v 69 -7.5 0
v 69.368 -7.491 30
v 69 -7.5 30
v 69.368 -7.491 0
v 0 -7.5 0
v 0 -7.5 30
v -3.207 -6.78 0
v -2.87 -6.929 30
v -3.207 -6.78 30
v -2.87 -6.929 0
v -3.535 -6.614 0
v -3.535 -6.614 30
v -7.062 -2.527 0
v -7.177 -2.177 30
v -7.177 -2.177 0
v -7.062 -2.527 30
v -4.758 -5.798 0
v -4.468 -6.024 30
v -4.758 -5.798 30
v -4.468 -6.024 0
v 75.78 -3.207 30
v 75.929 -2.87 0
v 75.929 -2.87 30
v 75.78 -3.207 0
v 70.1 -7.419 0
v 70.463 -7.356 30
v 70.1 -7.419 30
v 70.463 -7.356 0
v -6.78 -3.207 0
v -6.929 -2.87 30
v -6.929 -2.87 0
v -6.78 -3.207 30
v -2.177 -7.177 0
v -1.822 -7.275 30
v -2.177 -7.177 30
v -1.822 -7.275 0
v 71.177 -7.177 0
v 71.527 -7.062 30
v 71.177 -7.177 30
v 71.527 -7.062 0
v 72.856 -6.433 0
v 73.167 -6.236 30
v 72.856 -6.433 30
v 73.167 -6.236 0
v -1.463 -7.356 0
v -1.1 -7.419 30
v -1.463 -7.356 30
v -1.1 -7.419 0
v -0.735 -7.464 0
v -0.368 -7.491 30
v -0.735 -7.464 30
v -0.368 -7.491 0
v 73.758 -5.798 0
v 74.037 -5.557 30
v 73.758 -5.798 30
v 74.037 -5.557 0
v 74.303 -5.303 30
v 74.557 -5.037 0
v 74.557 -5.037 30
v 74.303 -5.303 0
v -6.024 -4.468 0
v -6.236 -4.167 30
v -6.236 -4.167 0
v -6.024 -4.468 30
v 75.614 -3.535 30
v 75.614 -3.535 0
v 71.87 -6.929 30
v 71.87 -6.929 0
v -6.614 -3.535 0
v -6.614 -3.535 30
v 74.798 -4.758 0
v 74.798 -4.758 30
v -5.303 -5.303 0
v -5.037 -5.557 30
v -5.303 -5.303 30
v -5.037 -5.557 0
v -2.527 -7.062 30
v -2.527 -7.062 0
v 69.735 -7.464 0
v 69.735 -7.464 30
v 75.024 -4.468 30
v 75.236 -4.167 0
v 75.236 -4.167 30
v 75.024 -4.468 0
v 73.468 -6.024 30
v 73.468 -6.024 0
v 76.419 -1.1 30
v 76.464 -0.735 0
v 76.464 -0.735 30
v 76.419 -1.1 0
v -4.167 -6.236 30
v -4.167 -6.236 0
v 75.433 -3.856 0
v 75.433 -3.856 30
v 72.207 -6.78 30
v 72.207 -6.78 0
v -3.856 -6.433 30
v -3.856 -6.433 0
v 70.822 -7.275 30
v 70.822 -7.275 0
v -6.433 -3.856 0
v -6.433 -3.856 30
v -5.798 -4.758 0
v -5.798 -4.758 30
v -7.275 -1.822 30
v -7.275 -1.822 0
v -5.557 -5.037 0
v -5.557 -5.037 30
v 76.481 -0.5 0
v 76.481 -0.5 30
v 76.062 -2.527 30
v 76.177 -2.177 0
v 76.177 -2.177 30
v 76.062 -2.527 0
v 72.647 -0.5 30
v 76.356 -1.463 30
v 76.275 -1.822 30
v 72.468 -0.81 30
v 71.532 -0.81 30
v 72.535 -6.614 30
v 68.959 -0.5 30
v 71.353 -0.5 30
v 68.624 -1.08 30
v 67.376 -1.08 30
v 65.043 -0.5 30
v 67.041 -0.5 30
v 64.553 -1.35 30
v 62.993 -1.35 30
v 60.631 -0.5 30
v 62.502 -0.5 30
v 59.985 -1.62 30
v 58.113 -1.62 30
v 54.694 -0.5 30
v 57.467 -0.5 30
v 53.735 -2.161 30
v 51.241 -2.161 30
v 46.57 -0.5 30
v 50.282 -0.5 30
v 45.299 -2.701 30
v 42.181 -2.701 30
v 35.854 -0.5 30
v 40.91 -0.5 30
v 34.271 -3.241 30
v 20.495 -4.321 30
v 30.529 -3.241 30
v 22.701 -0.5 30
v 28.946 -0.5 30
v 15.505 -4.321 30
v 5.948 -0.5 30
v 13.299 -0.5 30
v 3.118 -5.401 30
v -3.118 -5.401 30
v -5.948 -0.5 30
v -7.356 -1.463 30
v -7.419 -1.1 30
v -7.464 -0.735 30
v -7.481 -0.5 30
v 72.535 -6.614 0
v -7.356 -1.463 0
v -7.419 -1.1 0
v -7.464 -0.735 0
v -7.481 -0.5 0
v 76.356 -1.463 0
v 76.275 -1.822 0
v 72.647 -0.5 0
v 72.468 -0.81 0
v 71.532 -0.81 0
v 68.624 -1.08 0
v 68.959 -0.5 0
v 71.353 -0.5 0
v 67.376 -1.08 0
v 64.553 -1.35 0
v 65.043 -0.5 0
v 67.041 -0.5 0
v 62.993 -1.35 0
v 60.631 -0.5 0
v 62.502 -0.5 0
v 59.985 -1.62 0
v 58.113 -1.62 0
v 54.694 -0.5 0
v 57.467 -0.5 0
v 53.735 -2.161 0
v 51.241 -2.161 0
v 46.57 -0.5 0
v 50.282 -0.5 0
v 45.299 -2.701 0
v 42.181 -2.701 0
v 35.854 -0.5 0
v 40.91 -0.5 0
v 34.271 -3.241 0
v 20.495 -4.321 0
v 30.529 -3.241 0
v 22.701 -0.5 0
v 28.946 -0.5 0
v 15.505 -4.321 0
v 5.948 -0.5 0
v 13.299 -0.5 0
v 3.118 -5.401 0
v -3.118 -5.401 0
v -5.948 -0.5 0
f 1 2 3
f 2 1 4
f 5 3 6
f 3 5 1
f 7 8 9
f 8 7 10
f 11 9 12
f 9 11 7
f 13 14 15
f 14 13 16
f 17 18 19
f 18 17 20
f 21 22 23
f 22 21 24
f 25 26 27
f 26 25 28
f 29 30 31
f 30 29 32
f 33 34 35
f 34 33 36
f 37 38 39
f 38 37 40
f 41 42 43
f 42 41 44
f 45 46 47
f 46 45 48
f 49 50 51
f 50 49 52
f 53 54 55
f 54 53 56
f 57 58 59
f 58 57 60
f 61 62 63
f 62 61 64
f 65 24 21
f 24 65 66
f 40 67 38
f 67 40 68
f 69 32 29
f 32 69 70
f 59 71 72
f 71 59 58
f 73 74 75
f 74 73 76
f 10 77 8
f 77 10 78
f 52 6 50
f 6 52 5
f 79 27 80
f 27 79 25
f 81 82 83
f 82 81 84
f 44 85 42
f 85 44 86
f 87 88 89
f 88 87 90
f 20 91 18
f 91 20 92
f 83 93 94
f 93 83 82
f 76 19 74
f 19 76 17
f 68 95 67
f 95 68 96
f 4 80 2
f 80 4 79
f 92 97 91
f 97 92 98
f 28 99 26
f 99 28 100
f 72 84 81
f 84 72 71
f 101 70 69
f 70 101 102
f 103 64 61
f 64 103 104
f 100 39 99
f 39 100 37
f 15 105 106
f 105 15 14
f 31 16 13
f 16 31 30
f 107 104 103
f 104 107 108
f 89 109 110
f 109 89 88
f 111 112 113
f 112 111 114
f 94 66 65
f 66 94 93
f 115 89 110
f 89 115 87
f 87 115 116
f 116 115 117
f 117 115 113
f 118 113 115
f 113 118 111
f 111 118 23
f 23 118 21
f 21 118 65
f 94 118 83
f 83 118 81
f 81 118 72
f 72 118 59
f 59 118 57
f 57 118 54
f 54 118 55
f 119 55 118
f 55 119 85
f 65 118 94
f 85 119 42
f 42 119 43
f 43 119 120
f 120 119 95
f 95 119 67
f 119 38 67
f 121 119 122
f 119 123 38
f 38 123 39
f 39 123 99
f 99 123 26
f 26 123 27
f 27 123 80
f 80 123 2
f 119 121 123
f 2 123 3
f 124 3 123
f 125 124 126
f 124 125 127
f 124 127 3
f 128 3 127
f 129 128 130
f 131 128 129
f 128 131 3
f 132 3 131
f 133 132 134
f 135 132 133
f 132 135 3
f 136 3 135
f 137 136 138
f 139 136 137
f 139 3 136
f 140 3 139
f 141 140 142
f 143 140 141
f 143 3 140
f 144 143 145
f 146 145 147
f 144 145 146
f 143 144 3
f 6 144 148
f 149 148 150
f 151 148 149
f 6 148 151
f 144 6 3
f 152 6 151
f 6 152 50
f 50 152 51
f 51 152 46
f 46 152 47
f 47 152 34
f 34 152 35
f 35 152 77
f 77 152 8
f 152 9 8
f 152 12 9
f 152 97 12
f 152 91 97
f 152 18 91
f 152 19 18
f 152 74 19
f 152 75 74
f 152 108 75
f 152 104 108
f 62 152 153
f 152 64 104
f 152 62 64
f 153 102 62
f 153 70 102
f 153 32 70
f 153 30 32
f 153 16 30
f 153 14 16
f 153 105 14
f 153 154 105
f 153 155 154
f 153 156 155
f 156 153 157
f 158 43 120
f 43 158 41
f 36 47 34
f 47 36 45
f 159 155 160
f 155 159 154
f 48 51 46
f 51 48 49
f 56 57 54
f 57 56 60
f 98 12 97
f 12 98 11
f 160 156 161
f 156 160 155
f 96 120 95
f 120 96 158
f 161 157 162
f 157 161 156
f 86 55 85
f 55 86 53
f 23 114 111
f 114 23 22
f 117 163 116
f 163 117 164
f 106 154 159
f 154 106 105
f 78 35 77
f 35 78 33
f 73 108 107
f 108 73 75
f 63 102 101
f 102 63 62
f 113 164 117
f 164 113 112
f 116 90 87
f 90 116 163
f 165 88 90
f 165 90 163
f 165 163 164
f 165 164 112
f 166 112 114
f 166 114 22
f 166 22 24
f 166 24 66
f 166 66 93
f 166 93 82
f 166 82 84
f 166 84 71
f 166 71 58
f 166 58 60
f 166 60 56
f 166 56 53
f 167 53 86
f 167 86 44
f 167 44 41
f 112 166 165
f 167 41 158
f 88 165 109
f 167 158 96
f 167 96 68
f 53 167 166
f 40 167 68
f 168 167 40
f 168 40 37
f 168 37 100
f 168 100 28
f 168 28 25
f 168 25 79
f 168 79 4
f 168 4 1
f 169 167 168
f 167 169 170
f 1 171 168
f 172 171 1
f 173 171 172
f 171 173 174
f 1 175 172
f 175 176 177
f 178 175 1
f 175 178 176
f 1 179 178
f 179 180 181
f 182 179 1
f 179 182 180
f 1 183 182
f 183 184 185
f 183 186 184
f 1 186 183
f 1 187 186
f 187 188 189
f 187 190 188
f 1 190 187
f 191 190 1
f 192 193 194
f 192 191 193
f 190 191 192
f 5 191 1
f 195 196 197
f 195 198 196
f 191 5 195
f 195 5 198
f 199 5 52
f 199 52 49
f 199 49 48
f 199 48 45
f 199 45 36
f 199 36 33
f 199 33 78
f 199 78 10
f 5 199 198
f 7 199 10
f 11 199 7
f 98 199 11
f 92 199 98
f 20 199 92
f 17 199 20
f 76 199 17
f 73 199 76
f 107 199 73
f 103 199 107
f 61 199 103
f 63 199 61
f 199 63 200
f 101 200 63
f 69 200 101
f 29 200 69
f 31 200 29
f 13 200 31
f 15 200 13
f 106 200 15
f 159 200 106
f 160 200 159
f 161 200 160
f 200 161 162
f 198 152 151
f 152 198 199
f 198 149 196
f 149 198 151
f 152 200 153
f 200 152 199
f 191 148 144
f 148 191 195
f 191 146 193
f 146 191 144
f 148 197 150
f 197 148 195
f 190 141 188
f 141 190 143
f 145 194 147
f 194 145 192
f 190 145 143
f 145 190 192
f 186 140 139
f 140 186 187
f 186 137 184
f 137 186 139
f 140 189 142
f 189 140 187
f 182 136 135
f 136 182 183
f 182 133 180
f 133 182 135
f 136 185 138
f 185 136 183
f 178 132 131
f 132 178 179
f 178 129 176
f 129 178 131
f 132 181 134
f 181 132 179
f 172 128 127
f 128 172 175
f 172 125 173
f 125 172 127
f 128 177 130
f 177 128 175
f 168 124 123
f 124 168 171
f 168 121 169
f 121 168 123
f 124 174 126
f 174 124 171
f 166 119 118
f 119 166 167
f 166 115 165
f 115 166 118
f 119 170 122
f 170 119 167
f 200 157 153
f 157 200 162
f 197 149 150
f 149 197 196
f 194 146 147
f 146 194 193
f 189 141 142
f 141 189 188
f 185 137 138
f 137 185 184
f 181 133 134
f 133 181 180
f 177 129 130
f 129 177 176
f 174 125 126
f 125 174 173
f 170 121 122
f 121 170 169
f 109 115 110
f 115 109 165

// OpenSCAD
$fn=6;

module hueco(diam){
    translate([0,0,-5])
    scale([1.08,1.08,1])
    scale([diam/10,diam/10,10])
    cylinder(d=11.55,h=20);
}

difference(){
hull(){
translate([0,0,0])
cylinder(d=15,h=30,$fn=128);
translate([79-14+4,0,0])
cylinder(d=15,h=30,$fn=128);
}


hueco(10);
translate([20*(9/10)^1,0,0])
hueco(8);
translate([20*2*(9/10)^2,0,0])
hueco(6);
translate([20*3*(9/10)^3,0,0])
hueco(5);
translate([20*4*(9/10)^4,0,0])
hueco(4);
translate([20*5*(9/10)^5,0,0])
hueco(3);
translate([20*6*(9/10)^6,0,0])
hueco(2.5);
translate([20*3.4,0,0])
hueco(2);
translate([20*3.6,0,0])
hueco(1.5);


translate([-50,-0.5,-5])
cube([150,50,40]);
}
